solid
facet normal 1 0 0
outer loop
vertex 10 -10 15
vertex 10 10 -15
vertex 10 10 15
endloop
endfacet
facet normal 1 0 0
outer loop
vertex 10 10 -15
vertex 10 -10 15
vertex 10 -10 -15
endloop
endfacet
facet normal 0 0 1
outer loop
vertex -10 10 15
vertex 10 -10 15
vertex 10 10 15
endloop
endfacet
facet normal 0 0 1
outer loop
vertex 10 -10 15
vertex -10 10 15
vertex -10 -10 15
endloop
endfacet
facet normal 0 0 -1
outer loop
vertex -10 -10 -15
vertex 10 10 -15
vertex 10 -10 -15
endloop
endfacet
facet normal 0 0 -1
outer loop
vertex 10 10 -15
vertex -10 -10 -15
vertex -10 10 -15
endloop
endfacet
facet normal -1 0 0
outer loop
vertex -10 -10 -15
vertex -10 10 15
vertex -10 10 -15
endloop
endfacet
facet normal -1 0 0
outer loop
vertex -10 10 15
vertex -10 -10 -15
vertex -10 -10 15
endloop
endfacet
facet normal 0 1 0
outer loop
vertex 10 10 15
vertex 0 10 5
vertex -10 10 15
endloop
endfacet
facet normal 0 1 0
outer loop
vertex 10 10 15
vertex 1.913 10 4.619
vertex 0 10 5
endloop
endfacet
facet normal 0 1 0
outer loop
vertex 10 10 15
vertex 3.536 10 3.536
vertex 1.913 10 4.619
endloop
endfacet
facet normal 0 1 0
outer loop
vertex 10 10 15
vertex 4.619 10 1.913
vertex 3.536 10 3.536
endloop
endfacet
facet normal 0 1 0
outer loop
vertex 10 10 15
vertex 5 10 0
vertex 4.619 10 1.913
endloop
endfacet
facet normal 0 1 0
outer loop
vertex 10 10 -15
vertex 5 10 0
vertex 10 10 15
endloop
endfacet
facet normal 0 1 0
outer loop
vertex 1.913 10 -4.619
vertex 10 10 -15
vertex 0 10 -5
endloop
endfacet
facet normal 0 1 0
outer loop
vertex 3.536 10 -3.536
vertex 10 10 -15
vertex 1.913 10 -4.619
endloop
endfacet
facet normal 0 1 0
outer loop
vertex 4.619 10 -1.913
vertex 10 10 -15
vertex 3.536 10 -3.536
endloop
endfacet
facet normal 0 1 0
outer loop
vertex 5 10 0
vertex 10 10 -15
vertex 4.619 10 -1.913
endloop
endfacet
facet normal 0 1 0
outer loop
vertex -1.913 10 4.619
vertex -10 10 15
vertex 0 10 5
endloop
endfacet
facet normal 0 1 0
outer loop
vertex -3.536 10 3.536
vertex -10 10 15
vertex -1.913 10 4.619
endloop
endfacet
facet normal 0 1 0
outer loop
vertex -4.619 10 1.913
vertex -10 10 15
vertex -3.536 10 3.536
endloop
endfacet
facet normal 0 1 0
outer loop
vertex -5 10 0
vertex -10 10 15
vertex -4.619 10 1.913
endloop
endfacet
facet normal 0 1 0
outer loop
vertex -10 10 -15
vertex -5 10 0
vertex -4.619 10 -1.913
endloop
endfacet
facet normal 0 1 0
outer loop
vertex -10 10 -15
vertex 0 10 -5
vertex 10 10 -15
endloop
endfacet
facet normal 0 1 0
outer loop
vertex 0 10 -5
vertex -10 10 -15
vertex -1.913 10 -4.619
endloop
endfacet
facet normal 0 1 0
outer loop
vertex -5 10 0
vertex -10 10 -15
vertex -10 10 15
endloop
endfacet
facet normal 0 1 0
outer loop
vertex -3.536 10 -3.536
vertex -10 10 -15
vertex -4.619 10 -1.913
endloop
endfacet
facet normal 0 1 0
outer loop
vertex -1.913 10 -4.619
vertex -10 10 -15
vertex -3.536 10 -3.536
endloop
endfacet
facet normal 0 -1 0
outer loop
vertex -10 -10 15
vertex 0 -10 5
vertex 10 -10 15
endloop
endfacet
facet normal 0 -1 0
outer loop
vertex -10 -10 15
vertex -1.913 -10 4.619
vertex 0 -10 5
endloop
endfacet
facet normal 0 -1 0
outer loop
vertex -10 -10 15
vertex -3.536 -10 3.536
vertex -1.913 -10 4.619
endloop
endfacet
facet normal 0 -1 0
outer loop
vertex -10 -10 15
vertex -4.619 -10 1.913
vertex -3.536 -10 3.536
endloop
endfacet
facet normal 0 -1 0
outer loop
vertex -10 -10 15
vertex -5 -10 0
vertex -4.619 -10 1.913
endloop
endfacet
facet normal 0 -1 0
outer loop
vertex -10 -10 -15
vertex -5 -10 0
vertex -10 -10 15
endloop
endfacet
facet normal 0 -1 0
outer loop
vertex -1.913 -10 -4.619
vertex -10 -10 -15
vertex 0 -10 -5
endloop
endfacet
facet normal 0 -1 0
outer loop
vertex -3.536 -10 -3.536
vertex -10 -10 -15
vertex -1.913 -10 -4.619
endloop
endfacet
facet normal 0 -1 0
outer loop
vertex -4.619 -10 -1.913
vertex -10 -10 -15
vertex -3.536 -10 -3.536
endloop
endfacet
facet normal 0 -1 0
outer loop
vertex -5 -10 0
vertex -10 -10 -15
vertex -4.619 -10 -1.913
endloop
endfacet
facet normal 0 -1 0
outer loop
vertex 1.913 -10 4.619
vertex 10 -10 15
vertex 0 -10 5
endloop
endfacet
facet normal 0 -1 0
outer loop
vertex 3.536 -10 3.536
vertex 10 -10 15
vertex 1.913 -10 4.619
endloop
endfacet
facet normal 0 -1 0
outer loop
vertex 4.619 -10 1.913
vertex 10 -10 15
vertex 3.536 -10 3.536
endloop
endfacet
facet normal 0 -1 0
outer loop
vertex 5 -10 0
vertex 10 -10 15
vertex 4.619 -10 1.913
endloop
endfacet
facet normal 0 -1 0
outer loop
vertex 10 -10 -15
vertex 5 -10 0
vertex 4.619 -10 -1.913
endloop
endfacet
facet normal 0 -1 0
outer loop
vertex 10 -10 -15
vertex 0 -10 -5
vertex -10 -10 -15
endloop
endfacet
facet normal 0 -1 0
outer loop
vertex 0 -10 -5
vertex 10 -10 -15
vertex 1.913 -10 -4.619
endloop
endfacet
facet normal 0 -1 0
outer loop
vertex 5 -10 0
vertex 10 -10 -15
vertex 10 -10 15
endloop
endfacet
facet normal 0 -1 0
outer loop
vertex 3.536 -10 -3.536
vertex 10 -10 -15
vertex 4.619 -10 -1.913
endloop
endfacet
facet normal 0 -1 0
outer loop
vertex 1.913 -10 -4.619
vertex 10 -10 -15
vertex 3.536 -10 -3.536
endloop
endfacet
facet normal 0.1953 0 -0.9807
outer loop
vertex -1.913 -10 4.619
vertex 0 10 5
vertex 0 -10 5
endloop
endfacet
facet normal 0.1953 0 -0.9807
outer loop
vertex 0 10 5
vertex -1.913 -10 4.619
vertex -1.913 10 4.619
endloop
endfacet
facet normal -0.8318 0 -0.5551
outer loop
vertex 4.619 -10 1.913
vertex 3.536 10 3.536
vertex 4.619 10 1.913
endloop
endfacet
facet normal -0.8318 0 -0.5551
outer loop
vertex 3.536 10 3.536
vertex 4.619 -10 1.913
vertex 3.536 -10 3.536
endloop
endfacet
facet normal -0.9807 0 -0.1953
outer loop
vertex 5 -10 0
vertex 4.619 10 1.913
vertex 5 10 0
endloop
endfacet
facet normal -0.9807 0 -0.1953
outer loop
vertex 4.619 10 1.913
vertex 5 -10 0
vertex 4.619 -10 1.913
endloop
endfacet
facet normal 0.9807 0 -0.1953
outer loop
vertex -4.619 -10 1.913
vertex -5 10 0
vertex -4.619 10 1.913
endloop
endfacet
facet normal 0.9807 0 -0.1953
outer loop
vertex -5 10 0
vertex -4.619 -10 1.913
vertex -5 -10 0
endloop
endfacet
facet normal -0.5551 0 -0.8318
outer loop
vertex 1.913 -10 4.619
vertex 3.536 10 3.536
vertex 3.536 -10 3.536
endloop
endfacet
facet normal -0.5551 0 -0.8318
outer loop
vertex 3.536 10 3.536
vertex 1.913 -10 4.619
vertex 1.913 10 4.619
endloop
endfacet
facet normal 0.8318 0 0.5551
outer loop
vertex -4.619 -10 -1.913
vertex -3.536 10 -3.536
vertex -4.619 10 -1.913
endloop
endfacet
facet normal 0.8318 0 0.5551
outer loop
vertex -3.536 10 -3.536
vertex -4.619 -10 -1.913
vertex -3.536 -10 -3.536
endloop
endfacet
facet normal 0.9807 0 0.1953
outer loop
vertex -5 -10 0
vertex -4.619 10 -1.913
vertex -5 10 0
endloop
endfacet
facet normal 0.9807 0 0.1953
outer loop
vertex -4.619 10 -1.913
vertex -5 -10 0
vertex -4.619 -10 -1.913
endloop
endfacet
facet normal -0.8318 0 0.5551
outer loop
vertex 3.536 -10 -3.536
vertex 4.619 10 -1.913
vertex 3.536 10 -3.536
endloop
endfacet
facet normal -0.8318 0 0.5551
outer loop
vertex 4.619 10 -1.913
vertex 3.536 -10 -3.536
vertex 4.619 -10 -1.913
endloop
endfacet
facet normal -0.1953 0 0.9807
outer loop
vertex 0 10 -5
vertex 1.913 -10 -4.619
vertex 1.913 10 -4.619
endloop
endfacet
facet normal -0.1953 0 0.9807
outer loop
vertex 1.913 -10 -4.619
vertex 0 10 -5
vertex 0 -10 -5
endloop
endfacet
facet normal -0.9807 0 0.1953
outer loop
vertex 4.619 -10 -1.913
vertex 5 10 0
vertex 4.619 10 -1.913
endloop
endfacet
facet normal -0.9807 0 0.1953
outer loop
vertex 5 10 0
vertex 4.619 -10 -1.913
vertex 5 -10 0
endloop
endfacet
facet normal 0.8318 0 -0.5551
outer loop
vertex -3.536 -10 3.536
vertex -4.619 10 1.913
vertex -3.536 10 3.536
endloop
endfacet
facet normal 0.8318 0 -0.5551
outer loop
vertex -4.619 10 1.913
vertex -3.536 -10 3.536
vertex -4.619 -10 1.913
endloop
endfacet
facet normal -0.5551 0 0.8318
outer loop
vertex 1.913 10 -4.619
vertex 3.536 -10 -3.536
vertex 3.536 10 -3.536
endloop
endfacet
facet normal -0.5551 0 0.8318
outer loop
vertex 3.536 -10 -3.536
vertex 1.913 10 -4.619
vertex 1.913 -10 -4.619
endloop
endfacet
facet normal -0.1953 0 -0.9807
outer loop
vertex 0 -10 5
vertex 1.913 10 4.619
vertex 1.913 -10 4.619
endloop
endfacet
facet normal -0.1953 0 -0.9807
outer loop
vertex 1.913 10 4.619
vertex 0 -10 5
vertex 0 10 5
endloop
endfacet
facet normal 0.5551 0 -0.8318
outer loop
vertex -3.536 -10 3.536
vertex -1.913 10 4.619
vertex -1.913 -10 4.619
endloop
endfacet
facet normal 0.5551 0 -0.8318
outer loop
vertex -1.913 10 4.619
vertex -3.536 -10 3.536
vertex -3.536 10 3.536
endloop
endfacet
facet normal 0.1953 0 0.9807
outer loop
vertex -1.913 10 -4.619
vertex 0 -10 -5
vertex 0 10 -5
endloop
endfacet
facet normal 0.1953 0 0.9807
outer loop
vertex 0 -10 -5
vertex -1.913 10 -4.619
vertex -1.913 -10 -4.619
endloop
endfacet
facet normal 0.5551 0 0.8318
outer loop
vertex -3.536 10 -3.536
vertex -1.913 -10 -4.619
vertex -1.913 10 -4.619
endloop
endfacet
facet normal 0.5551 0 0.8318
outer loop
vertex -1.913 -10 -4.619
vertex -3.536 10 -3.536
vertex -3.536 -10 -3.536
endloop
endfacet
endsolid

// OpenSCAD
// Parameters for the central block
central_block_size = [20, 20, 30]; // Size of the central block (rectangular prism)
hole_diameter = 10;                // Diameter of the cylindrical hole
hole_radius = hole_diameter / 2;

// Function to create a block with a cylindrical hole
module block_with_hole(block_size) {
    difference() {
        // Create the block
        cube(block_size, center = true);
        // Subtract the cylindrical hole
        rotate([90, 0, 0]) {
            translate([0, 0, 0]) {
                cylinder(h = block_size[2] + 2, r = hole_radius, center = true);
            }
        }
    }
}

// Render the central block with a cylindrical hole
block_with_hole(central_block_size);
